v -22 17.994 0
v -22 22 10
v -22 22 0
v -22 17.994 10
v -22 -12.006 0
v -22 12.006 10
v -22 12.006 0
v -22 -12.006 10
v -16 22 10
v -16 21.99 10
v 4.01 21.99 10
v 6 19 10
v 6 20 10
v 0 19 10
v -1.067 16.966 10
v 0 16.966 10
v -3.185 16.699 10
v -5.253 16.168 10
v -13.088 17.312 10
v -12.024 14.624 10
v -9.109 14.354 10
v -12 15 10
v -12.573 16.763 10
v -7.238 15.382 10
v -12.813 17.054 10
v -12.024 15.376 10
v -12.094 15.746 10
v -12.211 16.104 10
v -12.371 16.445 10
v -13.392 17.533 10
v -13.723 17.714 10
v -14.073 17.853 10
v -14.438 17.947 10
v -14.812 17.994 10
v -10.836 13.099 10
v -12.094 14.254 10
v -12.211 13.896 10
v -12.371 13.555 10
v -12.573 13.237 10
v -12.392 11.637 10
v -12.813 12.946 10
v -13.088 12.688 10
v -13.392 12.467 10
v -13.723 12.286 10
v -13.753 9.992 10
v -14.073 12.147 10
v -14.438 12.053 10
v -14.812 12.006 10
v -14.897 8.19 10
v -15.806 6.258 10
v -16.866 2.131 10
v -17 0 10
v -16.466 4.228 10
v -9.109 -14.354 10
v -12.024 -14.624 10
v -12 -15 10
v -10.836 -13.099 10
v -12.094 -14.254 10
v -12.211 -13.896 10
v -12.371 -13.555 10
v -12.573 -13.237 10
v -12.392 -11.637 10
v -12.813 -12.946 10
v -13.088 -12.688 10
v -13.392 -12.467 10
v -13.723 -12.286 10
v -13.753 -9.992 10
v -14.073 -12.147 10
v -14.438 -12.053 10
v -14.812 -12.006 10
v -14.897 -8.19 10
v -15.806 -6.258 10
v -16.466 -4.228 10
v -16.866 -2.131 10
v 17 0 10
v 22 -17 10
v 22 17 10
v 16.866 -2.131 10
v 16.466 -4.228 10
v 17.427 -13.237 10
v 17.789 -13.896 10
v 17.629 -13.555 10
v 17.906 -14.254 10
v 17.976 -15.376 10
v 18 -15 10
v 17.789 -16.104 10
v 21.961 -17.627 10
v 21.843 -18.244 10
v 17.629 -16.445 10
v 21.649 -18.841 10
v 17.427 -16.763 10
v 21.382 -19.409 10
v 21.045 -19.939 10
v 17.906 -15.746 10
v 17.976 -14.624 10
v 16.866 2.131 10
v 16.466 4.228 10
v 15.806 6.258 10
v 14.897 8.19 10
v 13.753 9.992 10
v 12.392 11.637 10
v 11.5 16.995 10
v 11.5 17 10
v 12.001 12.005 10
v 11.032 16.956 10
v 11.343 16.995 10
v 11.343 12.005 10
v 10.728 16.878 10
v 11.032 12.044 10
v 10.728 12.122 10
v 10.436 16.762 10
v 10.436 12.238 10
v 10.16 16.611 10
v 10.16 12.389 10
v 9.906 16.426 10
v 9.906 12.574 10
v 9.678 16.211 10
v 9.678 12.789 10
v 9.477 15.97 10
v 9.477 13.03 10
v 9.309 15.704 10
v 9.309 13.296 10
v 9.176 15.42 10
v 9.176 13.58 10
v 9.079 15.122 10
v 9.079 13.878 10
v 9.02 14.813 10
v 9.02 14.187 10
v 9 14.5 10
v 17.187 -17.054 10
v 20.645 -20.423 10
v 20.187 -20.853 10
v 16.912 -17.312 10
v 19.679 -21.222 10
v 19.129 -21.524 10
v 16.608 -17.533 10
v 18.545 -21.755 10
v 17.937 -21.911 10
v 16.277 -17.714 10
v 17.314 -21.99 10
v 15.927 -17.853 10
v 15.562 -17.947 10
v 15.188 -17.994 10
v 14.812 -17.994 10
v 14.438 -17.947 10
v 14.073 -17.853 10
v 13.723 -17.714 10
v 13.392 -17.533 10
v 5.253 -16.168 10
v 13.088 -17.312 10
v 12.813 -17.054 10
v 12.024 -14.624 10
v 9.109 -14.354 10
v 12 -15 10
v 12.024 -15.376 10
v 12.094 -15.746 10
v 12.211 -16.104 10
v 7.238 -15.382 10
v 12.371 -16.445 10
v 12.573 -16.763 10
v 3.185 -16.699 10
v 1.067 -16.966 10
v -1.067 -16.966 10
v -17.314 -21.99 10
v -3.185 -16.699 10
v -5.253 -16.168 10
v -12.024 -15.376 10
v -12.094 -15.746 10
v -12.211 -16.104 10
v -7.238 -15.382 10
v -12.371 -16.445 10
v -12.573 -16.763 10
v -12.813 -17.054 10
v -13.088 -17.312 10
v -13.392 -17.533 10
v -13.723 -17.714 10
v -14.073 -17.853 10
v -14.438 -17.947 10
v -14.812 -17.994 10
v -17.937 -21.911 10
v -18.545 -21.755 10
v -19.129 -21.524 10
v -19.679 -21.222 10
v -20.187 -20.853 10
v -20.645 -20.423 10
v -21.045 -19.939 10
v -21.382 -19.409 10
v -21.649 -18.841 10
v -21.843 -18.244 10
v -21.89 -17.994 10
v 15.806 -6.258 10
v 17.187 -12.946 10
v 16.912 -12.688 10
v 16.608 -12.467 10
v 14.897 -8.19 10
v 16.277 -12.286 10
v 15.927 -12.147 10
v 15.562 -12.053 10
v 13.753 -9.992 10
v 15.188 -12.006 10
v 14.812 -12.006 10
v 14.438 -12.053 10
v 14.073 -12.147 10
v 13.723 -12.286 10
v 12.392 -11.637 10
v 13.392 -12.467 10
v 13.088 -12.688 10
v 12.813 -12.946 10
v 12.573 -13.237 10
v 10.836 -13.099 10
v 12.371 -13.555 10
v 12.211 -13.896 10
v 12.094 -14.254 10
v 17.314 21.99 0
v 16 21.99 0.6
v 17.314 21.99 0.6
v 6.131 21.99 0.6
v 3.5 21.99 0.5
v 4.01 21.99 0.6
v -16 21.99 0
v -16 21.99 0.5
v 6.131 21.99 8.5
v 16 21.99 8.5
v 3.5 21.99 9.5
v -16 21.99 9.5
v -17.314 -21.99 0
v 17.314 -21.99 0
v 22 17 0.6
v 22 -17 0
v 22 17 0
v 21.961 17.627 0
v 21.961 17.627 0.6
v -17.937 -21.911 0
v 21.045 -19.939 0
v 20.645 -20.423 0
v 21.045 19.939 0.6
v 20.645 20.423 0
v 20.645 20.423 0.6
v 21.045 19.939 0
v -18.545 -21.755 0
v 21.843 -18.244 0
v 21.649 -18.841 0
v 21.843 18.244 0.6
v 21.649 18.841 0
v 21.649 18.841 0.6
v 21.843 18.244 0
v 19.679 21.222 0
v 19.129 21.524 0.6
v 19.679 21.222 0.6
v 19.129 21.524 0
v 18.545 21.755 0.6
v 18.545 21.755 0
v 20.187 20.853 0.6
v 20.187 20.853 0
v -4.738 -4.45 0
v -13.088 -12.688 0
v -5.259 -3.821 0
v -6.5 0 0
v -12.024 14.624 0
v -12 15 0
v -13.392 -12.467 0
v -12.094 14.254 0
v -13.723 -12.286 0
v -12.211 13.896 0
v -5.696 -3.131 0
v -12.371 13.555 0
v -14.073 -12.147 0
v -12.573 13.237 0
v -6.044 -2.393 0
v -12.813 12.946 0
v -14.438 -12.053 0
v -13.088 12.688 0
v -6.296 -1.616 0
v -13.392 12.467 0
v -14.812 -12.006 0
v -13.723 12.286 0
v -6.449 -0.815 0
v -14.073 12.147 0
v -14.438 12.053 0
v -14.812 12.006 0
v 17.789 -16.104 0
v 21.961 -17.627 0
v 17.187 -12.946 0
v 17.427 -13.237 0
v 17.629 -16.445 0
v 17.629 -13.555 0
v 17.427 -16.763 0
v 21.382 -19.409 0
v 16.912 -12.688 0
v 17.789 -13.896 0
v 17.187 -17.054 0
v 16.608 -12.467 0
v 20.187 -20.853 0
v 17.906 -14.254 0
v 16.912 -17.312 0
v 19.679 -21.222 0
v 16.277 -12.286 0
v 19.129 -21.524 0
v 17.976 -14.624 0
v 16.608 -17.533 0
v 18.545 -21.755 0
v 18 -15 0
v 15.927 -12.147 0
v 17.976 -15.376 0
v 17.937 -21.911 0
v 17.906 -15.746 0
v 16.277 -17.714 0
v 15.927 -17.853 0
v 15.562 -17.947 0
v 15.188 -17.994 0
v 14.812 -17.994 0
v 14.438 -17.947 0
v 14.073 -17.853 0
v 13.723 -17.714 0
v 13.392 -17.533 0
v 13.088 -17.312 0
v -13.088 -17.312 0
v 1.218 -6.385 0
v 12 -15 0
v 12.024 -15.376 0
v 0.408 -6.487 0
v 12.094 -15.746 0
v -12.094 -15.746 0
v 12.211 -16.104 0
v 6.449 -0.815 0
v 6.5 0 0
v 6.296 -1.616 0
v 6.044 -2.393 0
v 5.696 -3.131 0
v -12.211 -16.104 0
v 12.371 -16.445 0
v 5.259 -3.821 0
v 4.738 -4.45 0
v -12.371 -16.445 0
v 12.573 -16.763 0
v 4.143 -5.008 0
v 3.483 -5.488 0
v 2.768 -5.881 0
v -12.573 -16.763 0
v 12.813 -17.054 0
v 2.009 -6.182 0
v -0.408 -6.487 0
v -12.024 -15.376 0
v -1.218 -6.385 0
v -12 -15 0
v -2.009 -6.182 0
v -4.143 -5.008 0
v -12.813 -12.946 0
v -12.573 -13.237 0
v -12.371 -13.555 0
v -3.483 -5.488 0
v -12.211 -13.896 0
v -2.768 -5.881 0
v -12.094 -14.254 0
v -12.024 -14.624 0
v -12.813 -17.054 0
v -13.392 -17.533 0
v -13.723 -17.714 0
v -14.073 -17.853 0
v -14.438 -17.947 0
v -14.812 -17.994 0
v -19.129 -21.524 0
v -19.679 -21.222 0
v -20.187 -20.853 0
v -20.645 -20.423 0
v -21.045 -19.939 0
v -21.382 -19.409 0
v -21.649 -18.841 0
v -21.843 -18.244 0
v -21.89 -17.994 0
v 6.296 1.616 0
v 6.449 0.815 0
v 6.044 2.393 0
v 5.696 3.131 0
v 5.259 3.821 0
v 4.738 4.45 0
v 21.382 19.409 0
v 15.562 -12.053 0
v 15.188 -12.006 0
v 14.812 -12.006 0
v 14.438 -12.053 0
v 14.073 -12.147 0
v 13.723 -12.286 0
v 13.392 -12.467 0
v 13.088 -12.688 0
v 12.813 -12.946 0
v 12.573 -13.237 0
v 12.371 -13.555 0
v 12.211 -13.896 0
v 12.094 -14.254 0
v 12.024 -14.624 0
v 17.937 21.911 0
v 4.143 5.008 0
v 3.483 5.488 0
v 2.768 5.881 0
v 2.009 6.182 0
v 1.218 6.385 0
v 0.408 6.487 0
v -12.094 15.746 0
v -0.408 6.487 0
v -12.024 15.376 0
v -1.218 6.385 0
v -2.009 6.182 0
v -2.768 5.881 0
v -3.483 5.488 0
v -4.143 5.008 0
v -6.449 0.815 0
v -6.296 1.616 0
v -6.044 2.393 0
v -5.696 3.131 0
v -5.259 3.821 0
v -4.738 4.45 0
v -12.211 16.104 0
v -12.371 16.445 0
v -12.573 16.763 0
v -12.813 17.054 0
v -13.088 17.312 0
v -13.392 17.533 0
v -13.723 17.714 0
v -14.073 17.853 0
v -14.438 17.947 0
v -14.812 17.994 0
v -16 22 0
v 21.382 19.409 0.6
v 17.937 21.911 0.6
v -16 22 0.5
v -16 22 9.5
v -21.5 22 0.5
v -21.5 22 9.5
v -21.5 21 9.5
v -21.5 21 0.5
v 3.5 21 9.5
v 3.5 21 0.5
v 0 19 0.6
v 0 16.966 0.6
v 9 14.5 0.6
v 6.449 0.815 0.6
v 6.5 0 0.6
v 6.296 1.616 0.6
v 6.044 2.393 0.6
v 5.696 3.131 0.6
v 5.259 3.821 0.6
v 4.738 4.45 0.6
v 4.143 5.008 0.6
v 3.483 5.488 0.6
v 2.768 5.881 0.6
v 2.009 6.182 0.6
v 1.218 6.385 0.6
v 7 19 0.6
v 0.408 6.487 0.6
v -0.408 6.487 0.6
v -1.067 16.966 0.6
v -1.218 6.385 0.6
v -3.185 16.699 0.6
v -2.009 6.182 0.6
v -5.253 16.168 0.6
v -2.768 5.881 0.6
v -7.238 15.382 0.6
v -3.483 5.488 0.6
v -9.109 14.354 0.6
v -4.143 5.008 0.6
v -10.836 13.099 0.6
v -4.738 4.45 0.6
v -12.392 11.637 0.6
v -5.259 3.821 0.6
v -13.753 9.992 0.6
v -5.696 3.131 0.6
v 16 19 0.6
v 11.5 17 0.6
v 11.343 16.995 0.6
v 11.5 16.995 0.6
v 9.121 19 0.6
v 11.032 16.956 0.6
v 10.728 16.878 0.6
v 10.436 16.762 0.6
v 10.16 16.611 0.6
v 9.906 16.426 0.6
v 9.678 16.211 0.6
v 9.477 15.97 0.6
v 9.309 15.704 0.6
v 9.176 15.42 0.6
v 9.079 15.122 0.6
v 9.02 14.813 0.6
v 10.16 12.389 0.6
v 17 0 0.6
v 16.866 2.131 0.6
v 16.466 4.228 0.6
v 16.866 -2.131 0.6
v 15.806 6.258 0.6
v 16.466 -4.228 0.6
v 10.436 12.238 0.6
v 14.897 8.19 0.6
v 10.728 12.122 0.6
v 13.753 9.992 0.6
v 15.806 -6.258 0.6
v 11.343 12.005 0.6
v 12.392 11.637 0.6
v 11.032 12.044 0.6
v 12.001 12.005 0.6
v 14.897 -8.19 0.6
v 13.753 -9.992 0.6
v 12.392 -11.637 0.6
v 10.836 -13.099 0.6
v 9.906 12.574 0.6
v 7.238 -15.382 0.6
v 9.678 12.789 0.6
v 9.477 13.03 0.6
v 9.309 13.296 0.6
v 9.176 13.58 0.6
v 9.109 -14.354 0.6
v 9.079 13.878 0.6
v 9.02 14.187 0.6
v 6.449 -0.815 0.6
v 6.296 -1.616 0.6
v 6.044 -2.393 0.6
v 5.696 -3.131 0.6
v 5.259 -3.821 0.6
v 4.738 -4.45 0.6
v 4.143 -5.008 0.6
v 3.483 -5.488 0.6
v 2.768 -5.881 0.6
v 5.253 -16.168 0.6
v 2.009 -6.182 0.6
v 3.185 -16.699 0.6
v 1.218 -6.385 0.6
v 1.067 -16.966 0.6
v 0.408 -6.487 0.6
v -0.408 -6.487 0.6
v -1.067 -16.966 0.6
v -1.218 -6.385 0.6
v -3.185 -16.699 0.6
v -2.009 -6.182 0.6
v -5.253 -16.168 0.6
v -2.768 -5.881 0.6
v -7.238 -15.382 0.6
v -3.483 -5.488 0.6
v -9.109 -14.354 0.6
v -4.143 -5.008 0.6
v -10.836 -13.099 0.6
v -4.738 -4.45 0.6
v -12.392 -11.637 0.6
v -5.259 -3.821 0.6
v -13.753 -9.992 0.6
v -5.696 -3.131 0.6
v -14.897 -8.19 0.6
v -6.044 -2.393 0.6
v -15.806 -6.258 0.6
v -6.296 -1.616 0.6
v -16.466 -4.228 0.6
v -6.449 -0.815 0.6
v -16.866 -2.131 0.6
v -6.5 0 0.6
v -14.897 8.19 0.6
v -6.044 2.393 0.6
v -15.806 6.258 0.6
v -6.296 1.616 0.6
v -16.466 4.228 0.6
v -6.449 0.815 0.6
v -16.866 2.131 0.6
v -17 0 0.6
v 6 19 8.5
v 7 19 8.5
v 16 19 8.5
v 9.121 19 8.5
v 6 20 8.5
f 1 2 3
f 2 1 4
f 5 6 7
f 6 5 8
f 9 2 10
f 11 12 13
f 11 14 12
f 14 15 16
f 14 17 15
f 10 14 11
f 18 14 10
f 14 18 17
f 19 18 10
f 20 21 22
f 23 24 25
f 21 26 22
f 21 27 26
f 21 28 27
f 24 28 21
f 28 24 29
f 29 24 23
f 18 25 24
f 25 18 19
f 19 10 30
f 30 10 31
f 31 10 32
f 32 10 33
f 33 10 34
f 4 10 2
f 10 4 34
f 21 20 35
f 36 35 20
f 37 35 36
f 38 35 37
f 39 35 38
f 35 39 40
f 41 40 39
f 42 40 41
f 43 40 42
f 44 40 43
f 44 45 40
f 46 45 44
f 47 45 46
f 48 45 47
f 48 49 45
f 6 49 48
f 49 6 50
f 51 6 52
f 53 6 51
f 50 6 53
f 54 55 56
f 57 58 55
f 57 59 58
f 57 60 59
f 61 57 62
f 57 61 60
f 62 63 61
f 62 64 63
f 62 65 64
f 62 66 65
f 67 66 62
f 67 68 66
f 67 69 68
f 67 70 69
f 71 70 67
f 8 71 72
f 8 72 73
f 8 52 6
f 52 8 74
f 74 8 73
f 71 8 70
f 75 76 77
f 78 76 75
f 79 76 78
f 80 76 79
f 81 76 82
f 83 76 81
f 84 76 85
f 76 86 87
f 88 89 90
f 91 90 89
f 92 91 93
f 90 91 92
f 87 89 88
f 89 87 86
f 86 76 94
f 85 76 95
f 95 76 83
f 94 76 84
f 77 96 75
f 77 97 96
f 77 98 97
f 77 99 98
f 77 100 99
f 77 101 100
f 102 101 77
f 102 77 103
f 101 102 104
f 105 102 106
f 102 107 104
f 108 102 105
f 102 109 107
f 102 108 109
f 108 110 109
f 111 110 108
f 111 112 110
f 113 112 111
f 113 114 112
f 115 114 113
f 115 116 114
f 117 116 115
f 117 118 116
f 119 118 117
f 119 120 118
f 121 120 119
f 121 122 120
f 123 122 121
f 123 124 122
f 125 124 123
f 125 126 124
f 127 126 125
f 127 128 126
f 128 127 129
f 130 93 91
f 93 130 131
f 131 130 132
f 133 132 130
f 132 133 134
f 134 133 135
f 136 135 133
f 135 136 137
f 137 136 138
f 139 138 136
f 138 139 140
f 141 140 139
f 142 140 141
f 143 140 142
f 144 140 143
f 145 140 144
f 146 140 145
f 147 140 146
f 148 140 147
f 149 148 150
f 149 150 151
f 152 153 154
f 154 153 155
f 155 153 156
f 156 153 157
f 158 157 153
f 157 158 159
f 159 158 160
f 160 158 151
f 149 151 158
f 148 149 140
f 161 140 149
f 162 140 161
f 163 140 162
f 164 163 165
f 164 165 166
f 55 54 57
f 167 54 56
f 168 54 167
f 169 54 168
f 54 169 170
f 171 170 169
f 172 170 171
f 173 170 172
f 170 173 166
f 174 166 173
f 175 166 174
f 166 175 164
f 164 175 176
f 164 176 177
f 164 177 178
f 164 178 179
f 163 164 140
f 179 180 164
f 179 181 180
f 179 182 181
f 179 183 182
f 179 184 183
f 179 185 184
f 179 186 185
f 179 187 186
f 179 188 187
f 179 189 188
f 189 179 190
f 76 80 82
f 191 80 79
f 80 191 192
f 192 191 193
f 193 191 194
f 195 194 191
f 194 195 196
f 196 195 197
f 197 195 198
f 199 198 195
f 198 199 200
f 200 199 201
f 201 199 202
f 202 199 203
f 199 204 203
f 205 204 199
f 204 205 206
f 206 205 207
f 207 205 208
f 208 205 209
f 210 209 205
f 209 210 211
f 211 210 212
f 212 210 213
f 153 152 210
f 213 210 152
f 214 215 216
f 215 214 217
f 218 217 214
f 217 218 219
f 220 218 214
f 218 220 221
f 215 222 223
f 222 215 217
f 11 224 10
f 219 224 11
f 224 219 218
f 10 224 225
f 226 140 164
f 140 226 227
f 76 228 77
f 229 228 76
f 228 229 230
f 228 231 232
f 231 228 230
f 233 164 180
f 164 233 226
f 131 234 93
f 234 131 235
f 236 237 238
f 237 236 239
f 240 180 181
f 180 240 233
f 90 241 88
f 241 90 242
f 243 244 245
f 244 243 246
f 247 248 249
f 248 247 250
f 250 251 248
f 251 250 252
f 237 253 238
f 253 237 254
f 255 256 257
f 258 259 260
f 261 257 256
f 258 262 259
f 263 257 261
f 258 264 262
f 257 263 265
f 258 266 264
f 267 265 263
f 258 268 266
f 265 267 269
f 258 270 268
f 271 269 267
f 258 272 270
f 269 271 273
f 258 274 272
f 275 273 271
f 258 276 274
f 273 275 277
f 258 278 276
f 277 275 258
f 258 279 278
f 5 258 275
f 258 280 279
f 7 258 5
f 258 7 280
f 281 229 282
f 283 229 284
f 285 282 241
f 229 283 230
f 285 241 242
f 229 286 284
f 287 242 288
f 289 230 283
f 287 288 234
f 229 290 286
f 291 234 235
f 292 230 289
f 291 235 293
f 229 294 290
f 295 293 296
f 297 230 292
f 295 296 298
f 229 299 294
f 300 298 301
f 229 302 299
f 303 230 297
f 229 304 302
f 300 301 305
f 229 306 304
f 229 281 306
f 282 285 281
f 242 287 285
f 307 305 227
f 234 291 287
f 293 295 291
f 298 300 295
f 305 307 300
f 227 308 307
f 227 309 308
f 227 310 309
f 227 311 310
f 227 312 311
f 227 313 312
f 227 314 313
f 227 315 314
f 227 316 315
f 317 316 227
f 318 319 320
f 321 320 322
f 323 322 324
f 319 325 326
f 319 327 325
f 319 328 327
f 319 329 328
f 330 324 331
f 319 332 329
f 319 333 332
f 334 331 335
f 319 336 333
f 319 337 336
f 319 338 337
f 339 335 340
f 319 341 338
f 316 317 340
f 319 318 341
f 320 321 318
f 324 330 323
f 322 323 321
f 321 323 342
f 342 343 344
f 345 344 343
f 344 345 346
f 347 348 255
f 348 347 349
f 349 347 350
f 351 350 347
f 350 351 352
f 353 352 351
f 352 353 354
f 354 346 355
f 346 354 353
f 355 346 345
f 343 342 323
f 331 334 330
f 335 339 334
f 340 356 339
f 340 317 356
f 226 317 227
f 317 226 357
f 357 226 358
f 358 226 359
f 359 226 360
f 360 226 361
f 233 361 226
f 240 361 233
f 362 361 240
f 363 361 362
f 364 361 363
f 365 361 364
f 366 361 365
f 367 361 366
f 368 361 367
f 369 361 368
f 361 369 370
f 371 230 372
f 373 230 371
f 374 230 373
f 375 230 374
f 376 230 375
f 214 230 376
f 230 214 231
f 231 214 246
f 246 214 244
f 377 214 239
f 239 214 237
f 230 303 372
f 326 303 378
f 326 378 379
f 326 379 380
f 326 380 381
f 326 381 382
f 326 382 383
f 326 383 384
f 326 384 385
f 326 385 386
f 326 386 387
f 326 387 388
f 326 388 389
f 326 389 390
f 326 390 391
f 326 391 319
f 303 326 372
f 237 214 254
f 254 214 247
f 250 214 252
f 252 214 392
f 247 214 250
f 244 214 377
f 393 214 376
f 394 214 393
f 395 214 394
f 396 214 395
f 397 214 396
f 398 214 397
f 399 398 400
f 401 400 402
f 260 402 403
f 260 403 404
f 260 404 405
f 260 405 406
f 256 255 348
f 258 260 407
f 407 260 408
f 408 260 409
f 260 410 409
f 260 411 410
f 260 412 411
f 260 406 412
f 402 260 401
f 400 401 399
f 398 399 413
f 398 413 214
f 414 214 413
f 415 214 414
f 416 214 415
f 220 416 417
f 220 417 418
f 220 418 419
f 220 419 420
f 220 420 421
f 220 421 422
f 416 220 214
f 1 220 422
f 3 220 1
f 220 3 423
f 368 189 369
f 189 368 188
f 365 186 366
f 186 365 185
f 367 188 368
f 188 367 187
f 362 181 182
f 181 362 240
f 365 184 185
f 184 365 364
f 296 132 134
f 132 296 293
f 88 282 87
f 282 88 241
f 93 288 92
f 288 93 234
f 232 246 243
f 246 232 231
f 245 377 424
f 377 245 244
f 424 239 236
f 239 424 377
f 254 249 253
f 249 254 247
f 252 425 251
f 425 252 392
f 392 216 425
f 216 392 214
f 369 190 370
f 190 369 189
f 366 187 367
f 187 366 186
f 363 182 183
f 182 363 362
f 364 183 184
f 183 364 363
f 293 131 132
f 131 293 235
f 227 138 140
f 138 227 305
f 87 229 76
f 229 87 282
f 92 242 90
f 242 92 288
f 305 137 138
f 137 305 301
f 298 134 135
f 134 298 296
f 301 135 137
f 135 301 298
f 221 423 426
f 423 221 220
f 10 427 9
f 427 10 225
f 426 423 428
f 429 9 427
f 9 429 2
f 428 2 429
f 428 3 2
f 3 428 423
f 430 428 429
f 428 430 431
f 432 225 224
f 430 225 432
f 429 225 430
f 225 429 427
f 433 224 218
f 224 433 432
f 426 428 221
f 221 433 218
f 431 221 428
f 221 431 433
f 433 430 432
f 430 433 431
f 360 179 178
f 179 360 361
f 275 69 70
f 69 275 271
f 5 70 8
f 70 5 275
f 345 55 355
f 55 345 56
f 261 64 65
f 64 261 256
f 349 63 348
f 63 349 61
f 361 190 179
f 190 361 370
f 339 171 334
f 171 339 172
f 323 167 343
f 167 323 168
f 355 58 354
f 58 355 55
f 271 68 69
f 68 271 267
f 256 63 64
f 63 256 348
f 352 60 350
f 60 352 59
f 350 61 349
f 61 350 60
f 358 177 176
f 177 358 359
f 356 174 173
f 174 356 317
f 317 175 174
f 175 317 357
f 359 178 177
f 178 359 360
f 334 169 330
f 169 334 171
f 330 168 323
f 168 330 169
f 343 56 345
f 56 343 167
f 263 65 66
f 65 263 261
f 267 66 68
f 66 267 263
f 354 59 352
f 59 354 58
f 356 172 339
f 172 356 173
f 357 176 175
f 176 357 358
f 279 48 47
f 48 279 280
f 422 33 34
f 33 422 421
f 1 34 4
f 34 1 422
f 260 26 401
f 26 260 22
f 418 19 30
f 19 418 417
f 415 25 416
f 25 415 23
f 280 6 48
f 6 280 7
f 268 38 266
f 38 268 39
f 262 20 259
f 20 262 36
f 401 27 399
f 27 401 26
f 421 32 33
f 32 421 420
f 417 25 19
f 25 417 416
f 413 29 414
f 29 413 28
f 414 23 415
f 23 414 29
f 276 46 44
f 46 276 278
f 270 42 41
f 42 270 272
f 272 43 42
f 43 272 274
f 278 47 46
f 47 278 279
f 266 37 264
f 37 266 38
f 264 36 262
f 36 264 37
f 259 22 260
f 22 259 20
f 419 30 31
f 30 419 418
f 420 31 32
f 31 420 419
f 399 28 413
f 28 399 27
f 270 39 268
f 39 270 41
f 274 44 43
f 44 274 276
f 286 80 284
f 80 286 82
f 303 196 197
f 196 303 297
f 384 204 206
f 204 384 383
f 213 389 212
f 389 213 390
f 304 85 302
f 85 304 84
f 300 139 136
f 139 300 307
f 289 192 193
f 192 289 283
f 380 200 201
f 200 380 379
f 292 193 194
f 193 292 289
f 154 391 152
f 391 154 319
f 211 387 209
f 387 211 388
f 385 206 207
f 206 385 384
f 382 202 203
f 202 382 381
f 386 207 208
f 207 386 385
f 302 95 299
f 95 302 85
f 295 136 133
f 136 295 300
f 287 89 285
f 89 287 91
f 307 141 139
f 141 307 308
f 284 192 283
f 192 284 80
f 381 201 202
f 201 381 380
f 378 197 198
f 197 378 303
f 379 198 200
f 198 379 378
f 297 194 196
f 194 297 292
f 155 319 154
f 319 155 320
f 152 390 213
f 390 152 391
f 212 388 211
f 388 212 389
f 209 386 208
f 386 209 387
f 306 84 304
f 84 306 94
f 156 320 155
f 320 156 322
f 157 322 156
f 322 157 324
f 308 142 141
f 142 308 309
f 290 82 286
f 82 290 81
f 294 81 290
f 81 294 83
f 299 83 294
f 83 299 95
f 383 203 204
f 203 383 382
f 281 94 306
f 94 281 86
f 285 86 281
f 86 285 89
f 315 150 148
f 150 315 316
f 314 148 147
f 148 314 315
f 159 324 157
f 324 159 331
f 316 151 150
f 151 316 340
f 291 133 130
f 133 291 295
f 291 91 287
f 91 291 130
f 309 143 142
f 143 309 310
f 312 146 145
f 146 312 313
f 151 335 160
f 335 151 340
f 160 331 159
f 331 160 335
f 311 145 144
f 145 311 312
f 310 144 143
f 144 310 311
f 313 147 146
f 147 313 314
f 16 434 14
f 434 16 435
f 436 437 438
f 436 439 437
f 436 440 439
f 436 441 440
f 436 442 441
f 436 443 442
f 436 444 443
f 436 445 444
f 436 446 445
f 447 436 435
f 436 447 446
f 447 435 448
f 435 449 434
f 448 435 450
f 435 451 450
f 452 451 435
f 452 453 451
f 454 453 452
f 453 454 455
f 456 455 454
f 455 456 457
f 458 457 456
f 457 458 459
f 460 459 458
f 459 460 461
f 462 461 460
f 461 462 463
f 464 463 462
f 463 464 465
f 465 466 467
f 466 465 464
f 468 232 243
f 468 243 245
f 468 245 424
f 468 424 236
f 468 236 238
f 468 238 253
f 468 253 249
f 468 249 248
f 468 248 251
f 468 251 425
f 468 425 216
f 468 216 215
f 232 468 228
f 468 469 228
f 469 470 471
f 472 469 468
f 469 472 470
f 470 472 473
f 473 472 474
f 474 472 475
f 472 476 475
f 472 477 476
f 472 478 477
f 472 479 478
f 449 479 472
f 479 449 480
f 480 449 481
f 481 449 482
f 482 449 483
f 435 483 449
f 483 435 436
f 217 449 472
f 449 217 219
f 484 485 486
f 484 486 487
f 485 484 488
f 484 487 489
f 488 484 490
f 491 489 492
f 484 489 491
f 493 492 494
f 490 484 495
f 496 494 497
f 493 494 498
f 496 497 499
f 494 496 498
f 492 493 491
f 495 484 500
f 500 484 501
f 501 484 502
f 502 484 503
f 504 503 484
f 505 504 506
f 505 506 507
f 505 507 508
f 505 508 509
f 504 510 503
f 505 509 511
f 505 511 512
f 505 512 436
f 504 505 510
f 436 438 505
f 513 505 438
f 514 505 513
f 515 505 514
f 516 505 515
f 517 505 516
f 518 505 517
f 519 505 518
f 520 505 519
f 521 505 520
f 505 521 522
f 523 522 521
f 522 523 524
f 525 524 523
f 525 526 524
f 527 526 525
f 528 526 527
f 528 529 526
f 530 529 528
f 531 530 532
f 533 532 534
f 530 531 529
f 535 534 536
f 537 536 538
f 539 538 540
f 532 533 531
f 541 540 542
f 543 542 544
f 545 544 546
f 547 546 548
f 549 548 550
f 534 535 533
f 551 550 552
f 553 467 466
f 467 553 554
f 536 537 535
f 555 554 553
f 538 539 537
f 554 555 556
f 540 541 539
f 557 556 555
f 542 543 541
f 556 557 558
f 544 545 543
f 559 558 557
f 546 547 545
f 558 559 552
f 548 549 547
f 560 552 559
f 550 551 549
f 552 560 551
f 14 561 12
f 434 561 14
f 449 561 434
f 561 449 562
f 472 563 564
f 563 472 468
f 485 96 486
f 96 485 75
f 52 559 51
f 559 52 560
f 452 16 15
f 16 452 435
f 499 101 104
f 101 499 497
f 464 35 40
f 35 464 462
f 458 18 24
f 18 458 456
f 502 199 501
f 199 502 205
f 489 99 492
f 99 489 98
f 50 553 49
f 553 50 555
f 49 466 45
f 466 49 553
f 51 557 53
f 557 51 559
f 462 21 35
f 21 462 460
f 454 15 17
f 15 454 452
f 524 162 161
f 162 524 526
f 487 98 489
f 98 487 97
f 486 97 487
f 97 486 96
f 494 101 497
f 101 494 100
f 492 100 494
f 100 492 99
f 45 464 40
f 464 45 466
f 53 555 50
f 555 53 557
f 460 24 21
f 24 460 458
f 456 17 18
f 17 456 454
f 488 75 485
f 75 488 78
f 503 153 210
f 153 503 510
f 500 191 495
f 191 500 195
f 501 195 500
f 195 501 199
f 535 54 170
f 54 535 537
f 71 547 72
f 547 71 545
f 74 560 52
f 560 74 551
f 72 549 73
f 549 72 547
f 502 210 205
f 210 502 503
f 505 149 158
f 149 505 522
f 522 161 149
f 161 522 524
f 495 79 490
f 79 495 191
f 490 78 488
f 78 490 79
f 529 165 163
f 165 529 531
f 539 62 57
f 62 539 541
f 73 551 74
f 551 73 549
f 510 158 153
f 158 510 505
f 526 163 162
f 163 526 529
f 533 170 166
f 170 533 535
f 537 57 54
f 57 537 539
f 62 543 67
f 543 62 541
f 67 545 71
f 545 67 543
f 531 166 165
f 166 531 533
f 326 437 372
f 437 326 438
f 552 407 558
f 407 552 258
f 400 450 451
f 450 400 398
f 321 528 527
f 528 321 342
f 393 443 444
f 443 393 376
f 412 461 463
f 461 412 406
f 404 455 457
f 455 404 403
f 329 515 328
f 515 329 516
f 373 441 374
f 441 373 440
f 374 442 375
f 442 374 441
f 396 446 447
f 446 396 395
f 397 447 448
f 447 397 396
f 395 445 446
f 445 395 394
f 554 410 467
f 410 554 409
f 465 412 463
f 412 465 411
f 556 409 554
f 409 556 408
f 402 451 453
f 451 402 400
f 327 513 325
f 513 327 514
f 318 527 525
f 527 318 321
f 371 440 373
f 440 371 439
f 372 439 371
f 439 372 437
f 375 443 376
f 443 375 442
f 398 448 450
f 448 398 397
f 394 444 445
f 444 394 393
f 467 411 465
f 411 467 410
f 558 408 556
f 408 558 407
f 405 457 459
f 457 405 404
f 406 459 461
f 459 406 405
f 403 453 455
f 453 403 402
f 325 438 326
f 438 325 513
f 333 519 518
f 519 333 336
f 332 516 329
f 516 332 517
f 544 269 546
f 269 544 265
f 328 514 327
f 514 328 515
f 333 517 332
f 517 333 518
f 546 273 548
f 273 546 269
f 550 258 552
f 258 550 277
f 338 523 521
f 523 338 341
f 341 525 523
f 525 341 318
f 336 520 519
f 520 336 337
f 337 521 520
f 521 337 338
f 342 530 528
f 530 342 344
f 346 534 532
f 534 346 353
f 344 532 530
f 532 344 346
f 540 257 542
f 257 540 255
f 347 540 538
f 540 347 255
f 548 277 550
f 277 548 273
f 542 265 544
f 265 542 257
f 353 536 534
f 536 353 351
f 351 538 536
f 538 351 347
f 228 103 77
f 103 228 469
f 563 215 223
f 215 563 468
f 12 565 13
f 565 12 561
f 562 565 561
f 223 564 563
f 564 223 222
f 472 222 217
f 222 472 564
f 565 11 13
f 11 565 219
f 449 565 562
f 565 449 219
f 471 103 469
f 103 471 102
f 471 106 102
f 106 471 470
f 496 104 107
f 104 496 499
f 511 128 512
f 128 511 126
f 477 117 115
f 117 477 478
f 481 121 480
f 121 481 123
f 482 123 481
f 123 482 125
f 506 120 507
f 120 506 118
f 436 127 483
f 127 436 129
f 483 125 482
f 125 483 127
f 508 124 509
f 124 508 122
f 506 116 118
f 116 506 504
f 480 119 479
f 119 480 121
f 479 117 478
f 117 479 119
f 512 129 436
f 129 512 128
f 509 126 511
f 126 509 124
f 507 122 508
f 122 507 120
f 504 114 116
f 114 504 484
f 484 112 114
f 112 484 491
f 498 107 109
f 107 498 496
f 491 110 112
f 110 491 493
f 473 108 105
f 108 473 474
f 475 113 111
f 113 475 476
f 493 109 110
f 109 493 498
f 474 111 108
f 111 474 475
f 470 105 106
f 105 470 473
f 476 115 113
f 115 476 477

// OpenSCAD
$fn = 50;


union() {
	difference() {
		union() {
			translate(v = [0, 0, 0]) {
				rotate(a = [0, 0, 0]) {
					hull() {
						translate(v = [-17.0000000000, 17.0000000000, 0]) {
							rotate(a = [0, 0, 0]) {
								translate(v = [0, 0, 0]) {
									rotate(a = [0, 0, 0]) {
										cylinder(h = 10, r = 5);
									}
								}
							}
						}
						translate(v = [17.0000000000, 17.0000000000, 0]) {
							rotate(a = [0, 0, 0]) {
								translate(v = [0, 0, 0]) {
									rotate(a = [0, 0, 0]) {
										cylinder(h = 10, r = 5);
									}
								}
							}
						}
						translate(v = [-17.0000000000, -17.0000000000, 0]) {
							rotate(a = [0, 0, 0]) {
								translate(v = [0, 0, 0]) {
									rotate(a = [0, 0, 0]) {
										cylinder(h = 10, r = 5);
									}
								}
							}
						}
						translate(v = [17.0000000000, -17.0000000000, 0]) {
							rotate(a = [0, 0, 0]) {
								translate(v = [0, 0, 0]) {
									rotate(a = [0, 0, 0]) {
										cylinder(h = 10, r = 5);
									}
								}
							}
						}
					}
				}
			}
			translate(v = [-22.0000000000, 16.0000000000, 0]) {
				rotate(a = [0, 0, 0]) {
					cube(size = [6, 6, 10]);
				}
			}
		}
		union() {
			translate(v = [-21.5000000000, 21.0000000000, 0.5000000000]) {
				rotate(a = [0, 0, 0]) {
					cube(size = [25, 1, 9.0000000000]);
				}
			}
			translate(v = [-22.5000000000, -15.0000000000, -125]) {
				rotate(a = [0, 0, 0]) {
					hull() {
						translate(v = [7.5000000000, 0, 0]) {
							rotate(a = [0, 0, 0]) {
								translate(v = [0, 0, 0]) {
									rotate(a = [0, 0, 0]) {
										cylinder(h = 250, r = 3.0000000000);
									}
								}
							}
						}
						translate(v = [-7.5000000000, 0, 0]) {
							rotate(a = [0, 0, 0]) {
								translate(v = [0, 0, 0]) {
									rotate(a = [0, 0, 0]) {
										cylinder(h = 250, r = 3.0000000000);
									}
								}
							}
						}
					}
				}
			}
			translate(v = [-22.5000000000, 15.0000000000, -125]) {
				rotate(a = [0, 0, 0]) {
					hull() {
						translate(v = [7.5000000000, 0, 0]) {
							rotate(a = [0, 0, 0]) {
								translate(v = [0, 0, 0]) {
									rotate(a = [0, 0, 0]) {
										cylinder(h = 250, r = 3.0000000000);
									}
								}
							}
						}
						translate(v = [-7.5000000000, 0, 0]) {
							rotate(a = [0, 0, 0]) {
								translate(v = [0, 0, 0]) {
									rotate(a = [0, 0, 0]) {
										cylinder(h = 250, r = 3.0000000000);
									}
								}
							}
						}
					}
				}
			}
			translate(v = [15.0000000000, -15.0000000000, -125.0000000000]) {
				rotate(a = [0, 0, 0]) {
					cylinder(h = 250, r = 3.0000000000);
				}
			}
			translate(v = [0.0000000000, 11.0000000000, 0.6000000000]) {
				rotate(a = [0, 0, 0]) {
					cube(size = [11, 8, 12.4000000000]);
				}
			}
			translate(v = [0, 0, 0.6000000000]) {
				rotate(a = [0, 0, 0]) {
					cylinder(h = 12.4000000000, r = 17.0000000000);
				}
			}
			translate(v = [0, 0, -5.0000000000]) {
				rotate(a = [0, 0, 0]) {
					cylinder(h = 10, r = 6.5000000000);
				}
			}
			translate(v = [0.0000000000, 17.0000000000, 0.6000000000]) {
				rotate(a = [0, 0, 0]) {
					cube(size = [22.0000000000, 2, 12.4000000000]);
				}
			}
			translate(v = [16.0000000000, 17.0000000000, 0.6000000000]) {
				rotate(a = [0, 0, 0]) {
					cube(size = [6, 5, 12.4000000000]);
				}
			}
			translate(v = [6.0000000000, 17.0000000000, 8.5000000000]) {
				rotate(a = [0, 0, 0]) {
					cube(size = [16, 5, 1.5000000000]);
				}
			}
			translate(v = [3.2500000000, 22.7500000000, 0.6000000000]) {
				rotate(a = [0, 0, -45]) {
					cube(size = [7.5000000000, 1.5000000000, 12.4000000000]);
				}
			}
			translate(v = [2.5000000000, 12.0000000000, 0.6000000000]) {
				rotate(a = [0, 0, 0]) {
					cube(size = [9.0000000000, 5, 9.4000000000]);
				}
			}
		}
	}
	union() {
		translate(v = [14, 14.5000000000, 0]) {
			rotate(a = [0, 0, 0]) {
				hull() {
					translate(v = [2.5000000000, 0, 0]) {
						rotate(a = [0, 0, 0]) {
							translate(v = [0, 0, 0]) {
								rotate(a = [0, 0, 0]) {
									cylinder(h = 10, r = 2.5000000000);
								}
							}
						}
					}
					translate(v = [-2.5000000000, 0, 0]) {
						rotate(a = [0, 0, 0]) {
							translate(v = [0, 0, 0]) {
								rotate(a = [0, 0, 0]) {
									cylinder(h = 10, r = 2.5000000000);
								}
							}
						}
					}
				}
			}
		}
	}
}
